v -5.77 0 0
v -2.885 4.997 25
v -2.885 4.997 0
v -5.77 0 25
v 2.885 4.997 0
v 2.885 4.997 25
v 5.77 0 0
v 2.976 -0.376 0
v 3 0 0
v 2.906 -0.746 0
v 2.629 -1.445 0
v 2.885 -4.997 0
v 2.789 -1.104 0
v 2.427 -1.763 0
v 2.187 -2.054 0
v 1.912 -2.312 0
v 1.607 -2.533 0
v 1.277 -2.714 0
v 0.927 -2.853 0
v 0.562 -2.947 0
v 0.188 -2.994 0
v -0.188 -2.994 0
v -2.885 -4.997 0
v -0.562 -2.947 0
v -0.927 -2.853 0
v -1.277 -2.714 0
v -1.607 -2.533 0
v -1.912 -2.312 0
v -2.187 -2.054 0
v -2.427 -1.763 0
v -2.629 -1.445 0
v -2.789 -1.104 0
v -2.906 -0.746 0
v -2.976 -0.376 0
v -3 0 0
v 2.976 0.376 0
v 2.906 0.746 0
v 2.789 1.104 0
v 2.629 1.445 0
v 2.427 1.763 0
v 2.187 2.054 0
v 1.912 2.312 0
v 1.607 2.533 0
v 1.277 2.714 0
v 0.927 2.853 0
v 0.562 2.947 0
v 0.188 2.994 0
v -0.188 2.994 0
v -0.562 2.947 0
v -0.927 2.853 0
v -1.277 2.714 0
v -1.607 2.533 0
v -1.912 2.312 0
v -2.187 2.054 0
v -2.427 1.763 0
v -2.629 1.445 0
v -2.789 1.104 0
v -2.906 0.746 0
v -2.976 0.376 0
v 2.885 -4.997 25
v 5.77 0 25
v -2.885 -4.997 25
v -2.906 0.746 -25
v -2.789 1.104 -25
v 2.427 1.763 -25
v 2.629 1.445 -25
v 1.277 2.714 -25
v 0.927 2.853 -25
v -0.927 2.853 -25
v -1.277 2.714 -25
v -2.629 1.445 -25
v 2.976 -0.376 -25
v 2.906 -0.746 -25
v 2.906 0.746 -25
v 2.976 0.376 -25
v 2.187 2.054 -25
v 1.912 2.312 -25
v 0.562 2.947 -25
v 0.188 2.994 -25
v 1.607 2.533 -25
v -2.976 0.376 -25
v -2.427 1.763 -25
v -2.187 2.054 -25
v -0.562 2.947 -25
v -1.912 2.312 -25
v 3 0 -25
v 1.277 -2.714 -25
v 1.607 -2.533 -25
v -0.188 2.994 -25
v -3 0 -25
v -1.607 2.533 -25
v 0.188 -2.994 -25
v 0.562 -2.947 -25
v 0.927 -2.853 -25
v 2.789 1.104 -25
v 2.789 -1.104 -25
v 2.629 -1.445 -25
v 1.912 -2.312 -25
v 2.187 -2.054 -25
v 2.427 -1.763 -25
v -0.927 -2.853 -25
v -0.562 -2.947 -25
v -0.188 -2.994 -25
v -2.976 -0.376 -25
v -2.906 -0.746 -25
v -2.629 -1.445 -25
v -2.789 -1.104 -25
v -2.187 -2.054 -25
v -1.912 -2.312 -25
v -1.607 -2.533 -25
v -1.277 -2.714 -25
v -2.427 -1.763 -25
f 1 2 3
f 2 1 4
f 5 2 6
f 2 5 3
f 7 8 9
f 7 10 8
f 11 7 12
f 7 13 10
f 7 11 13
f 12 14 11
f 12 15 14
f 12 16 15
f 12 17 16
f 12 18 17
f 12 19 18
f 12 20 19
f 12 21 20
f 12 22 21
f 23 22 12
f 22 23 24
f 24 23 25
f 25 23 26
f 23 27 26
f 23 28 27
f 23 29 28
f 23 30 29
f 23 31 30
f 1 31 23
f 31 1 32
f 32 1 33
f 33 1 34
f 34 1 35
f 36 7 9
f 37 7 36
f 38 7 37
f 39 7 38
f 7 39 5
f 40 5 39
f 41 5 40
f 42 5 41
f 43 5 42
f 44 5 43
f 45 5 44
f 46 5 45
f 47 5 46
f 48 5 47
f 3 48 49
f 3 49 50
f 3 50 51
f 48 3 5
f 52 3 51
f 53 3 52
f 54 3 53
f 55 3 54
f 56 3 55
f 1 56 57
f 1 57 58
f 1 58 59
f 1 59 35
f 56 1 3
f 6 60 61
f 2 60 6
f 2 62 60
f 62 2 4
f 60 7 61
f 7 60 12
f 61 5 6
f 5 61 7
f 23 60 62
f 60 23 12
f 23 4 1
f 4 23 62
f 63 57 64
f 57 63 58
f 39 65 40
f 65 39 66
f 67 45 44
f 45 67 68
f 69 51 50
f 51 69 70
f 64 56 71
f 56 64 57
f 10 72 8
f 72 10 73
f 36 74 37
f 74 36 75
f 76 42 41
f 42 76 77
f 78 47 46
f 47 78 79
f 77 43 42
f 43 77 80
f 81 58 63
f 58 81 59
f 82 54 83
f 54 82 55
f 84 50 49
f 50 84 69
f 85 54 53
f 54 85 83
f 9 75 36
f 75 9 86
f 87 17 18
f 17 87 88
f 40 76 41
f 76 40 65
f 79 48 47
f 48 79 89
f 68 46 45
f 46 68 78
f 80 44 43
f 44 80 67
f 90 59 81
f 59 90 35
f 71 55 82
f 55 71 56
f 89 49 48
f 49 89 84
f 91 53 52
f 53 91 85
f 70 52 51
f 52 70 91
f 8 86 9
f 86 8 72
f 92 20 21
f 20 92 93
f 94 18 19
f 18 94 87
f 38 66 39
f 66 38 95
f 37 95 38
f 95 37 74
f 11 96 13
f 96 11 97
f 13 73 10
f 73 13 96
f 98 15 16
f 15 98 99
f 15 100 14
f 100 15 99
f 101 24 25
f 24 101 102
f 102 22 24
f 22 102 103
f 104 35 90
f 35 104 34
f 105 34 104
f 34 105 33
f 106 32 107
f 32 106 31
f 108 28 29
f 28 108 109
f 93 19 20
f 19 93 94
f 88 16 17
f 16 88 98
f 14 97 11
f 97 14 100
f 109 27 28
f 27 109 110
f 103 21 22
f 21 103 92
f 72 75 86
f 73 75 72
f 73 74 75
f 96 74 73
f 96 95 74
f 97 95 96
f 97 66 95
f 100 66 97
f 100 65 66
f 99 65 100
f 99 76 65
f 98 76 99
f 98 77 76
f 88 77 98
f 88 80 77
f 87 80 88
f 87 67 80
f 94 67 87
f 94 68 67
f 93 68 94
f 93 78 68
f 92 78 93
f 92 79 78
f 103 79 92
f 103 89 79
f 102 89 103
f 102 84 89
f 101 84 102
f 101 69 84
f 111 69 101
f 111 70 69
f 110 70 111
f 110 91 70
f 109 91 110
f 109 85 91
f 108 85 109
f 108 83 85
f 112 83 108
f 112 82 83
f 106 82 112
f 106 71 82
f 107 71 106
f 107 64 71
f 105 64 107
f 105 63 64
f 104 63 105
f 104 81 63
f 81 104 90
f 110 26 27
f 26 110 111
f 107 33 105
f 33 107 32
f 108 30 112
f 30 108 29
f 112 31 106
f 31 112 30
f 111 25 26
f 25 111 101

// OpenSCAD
$fn = 50;


difference() {
	union() {
		translate(v = [0, 0, 0]) {
			rotate(a = [0, 0, 0]) {
				translate(v = [0, 0, 0]) {
					rotate(a = [0, 0, 0]) {
						linear_extrude(height = 25) {
							polygon(points = [[5.7700000000, 0.0000000000], [2.8850000000, 4.9969665798], [-2.8850000000, 4.9969665798], [-5.7700000000, 0.0000000000], [-2.8850000000, -4.9969665798], [2.8850000000, -4.9969665798]]);
						}
					}
				}
			}
		}
		translate(v = [0, 0, -25]) {
			rotate(a = [0, 0, 0]) {
				cylinder(h = 25, r = 3.0000000000);
			}
		}
	}
	union();
}
